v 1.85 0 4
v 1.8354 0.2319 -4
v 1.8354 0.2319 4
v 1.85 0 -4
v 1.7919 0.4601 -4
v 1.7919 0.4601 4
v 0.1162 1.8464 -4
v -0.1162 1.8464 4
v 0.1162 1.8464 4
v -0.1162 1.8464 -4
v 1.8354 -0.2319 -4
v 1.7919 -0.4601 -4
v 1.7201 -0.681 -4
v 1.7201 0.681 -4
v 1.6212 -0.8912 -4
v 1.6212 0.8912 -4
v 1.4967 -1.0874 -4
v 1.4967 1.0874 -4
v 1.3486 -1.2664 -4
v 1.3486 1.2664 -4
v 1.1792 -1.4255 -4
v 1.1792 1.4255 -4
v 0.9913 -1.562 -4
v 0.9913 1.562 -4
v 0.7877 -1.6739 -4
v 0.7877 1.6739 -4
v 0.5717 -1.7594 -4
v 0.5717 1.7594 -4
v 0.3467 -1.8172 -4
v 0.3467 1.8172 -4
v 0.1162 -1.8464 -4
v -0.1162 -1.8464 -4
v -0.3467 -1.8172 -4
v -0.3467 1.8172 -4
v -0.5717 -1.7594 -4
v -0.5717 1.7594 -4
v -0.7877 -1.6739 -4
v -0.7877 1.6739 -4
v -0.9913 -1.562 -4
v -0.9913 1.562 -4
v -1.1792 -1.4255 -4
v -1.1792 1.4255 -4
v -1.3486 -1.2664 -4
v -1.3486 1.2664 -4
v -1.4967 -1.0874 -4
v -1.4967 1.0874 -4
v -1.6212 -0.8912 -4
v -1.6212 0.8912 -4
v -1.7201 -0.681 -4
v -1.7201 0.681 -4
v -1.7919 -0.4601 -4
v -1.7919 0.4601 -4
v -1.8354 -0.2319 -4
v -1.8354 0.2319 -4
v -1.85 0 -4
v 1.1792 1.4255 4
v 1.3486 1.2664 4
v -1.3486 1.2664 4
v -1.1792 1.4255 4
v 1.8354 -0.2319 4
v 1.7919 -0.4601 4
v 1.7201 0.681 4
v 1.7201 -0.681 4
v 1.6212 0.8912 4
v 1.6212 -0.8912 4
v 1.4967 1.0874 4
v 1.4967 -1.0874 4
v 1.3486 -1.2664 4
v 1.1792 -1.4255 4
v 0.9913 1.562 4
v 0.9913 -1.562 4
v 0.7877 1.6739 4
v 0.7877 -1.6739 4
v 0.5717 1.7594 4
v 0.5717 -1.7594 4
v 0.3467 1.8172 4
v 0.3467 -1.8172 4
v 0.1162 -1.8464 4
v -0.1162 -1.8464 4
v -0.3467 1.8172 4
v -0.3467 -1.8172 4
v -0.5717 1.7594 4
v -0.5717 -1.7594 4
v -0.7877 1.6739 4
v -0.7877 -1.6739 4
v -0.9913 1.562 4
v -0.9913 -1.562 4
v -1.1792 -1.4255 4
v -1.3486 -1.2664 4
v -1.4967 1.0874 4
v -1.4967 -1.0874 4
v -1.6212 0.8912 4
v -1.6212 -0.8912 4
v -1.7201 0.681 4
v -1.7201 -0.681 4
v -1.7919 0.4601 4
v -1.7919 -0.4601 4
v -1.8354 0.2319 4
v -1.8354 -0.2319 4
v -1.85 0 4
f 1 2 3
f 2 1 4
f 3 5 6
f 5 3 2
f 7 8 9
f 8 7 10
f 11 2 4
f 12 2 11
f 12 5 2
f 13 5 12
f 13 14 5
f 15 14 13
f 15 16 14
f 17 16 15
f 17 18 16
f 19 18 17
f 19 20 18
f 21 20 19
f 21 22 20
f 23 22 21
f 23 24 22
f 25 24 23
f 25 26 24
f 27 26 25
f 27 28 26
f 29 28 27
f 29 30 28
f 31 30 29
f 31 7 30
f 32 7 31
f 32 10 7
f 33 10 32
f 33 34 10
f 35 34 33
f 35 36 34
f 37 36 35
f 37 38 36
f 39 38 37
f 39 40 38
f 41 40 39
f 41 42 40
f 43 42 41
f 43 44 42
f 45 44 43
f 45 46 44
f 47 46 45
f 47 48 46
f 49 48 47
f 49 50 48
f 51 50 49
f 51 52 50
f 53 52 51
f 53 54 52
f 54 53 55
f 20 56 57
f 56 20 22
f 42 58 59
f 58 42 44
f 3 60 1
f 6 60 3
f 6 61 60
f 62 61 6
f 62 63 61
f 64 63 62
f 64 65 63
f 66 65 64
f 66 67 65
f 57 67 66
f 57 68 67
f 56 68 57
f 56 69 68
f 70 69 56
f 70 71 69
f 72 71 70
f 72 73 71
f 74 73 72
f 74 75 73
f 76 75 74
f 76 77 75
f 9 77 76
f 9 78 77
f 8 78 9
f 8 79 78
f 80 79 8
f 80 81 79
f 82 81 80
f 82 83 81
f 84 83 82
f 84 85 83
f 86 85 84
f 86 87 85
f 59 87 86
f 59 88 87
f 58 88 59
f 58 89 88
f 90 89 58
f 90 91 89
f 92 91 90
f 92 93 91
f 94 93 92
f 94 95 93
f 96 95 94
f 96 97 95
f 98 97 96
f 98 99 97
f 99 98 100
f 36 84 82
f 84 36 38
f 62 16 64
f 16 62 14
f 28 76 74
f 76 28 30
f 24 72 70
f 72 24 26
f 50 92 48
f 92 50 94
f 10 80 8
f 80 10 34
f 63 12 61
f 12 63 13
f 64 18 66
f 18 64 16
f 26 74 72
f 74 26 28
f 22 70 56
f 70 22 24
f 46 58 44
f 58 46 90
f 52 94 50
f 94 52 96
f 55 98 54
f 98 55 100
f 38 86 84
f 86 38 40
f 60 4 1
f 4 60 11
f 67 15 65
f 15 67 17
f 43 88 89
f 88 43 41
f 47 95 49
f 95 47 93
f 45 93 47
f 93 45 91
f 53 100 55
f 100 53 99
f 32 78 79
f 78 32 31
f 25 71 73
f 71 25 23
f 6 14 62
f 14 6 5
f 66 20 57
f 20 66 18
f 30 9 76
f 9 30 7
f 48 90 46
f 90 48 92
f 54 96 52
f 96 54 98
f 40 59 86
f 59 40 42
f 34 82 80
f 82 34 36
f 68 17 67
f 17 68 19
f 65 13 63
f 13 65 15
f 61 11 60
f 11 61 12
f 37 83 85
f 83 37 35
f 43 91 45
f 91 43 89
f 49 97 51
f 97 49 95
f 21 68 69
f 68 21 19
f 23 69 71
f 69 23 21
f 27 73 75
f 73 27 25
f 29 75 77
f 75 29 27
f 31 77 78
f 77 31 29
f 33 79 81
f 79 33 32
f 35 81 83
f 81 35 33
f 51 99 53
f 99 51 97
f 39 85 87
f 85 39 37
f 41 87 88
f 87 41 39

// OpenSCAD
$fn = 50;


difference() {
	union() {
		translate(v = [0, 0, -4.0000000000]) {
			cylinder(h = 8, r = 1.8500000000);
		}
	}
	union() {
		translate(v = [0, 0, -100.0000000000]) {
			cylinder(h = 200, r = 0);
		}
	}
}
